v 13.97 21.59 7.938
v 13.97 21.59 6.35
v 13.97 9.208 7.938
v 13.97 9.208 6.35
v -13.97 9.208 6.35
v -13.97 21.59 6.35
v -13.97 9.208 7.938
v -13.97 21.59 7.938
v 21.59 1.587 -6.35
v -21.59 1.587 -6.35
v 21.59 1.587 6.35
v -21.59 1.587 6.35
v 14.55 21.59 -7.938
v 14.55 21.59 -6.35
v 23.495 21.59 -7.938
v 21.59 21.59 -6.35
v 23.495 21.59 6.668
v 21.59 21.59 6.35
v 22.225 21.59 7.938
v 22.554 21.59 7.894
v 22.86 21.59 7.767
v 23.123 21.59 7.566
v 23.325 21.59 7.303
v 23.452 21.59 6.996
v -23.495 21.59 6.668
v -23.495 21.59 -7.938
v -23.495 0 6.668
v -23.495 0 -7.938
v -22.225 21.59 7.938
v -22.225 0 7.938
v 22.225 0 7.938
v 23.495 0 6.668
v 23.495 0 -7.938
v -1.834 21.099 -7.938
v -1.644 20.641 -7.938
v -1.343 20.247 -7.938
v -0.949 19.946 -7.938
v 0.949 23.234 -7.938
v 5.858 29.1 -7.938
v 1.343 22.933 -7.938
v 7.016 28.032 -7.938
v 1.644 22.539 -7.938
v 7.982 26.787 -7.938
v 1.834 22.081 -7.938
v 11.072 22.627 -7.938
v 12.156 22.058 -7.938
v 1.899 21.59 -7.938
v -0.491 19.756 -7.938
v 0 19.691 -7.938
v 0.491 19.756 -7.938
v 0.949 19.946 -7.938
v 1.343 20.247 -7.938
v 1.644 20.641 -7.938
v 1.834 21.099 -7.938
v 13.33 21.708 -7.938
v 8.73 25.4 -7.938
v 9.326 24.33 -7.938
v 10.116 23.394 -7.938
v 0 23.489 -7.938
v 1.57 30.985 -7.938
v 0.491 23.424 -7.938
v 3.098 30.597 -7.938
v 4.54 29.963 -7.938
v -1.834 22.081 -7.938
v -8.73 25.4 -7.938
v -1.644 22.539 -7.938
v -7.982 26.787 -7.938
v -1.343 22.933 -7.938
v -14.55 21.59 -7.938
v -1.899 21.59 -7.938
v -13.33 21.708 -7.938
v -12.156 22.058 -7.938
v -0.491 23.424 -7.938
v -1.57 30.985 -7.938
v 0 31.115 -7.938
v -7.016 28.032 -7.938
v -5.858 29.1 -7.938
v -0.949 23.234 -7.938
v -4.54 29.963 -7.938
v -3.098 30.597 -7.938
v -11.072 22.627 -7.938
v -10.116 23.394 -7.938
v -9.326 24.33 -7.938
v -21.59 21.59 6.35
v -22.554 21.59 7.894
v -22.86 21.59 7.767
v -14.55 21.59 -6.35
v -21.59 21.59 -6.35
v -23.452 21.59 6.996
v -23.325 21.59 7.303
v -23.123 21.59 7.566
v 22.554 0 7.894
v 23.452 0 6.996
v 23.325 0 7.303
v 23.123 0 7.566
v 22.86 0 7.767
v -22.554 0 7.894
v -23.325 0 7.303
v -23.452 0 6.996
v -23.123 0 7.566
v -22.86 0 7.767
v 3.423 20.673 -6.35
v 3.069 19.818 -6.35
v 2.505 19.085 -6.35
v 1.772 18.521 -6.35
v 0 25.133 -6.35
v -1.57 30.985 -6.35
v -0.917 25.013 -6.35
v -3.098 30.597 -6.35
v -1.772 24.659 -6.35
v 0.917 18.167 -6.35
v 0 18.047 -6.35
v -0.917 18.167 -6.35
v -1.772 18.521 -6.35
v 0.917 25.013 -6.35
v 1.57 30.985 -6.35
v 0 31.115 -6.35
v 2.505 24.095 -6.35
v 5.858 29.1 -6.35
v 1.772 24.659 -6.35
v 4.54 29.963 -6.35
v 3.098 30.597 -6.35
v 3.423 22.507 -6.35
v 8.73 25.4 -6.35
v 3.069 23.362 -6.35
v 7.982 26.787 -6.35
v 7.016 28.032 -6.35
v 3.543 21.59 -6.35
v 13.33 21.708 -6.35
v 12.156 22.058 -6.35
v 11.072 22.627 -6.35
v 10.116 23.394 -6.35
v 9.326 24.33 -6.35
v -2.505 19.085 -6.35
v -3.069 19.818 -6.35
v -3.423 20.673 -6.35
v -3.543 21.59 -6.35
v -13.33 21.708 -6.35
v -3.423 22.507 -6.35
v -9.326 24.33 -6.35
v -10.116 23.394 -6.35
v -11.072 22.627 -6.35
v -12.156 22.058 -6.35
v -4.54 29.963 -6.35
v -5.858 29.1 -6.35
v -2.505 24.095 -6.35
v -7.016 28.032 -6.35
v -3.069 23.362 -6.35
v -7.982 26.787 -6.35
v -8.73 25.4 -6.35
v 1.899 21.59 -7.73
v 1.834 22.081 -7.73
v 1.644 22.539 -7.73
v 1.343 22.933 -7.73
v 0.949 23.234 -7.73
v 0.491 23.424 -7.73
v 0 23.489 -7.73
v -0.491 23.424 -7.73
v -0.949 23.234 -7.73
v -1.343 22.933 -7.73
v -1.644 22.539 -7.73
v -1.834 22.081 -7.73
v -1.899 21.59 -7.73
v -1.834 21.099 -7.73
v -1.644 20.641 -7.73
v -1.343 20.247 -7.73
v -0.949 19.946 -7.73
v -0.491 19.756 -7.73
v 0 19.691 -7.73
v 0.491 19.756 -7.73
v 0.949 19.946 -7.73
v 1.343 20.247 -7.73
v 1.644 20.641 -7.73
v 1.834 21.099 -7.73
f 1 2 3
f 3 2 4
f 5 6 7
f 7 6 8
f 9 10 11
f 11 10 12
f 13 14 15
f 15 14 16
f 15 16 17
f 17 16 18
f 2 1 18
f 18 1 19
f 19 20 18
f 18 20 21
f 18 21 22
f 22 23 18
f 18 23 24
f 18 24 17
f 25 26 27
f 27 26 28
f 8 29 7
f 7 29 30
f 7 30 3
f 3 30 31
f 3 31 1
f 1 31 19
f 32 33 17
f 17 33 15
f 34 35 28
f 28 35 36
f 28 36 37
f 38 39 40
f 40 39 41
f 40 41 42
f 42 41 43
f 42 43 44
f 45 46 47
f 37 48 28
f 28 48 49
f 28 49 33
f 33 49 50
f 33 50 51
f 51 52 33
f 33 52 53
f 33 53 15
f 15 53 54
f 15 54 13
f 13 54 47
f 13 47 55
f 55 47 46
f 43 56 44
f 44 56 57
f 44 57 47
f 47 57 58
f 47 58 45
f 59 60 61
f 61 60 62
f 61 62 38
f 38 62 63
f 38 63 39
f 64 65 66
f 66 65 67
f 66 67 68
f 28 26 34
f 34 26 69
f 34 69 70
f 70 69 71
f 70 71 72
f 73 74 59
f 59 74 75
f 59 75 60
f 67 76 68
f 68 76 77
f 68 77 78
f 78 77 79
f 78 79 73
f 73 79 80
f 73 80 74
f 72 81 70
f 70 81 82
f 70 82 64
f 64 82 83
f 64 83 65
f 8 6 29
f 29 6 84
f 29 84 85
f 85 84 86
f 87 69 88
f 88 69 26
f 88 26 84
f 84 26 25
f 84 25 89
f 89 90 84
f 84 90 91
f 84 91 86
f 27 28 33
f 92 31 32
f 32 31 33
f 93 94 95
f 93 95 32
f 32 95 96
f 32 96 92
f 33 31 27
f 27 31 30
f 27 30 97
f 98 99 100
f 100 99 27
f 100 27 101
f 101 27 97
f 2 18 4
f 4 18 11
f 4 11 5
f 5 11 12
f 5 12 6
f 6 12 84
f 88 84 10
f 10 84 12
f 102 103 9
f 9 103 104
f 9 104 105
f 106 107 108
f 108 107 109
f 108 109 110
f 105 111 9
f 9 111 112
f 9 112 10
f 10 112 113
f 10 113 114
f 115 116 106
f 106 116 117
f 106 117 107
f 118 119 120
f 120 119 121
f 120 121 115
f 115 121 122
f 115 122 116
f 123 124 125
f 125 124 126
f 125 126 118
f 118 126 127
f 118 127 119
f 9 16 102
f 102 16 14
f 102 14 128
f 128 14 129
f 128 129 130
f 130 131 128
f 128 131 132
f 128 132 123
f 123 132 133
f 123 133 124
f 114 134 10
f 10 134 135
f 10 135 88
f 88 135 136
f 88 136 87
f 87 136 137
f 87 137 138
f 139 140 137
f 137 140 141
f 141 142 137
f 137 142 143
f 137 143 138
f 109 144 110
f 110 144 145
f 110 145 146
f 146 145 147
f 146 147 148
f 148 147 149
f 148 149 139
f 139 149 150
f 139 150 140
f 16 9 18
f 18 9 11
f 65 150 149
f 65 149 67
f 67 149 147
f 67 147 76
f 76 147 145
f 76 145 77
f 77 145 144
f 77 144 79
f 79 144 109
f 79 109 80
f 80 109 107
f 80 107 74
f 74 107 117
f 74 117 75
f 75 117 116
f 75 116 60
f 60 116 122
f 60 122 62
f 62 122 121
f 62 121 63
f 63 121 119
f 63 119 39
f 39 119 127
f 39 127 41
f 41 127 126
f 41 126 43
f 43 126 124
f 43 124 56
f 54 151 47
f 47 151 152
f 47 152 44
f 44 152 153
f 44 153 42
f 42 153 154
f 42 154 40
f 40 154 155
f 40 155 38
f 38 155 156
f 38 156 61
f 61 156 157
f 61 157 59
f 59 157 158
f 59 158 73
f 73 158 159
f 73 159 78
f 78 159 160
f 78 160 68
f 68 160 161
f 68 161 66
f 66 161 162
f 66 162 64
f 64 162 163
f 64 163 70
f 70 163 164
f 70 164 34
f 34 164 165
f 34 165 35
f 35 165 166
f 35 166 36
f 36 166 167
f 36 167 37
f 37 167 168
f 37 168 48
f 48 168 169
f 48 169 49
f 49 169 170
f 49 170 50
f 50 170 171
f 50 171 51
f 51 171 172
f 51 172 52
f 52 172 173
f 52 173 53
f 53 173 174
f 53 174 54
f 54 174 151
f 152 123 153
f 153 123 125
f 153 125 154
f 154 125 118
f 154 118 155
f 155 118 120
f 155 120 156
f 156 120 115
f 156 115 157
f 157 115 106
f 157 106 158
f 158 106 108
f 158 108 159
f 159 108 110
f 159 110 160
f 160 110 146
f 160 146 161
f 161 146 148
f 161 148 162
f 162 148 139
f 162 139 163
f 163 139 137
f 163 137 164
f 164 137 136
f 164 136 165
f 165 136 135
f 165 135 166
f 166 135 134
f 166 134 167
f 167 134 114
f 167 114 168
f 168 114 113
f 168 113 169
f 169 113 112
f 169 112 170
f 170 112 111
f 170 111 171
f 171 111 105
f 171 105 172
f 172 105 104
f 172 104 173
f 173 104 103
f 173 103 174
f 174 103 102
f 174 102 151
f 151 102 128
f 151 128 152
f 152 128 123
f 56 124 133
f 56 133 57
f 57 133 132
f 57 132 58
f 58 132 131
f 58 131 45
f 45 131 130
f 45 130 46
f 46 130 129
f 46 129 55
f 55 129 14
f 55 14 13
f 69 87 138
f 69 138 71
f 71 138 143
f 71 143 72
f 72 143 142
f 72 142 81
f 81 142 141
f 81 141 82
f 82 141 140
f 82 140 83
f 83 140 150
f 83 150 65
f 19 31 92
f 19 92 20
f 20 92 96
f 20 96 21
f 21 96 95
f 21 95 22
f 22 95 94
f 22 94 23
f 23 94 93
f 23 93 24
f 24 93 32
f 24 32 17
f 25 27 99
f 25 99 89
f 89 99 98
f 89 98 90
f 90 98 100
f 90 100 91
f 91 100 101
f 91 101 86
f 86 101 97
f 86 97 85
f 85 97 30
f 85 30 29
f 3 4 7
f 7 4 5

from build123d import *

# Parameters (mm, degrees)
SKETCH1_W           = 46.99
SKETCH1_H           = 15.875
BOSS_EXTRUDE1_DEPTH = 21.59
SKETCH2_W           = 43.18
SKETCH2_H           = 12.7
SKETCH2_W_2         = 27.94
SKETCH2_H_2         = 1.5875
CUT_EXTRUDE1_DEPTH  = 20.0025
SKETCH3_R           = 9.525
BOSS_EXTRUDE2_DEPTH = 1.5875
FILLET1_R           = 6.35
FILLET2_R           = 1.27
SKETCH9_W           = 27.94
SKETCH9_H           = 1.5875
BOSS_EXTRUDE3_DEPTH = 7.62


with BuildPart() as part:
    # Sketch1 → Boss-Extrude1 (new body)
    with BuildSketch(Plane(origin=(0, 0, 0), x_dir=(1, 0, 0), z_dir=(0, 1, 0))):
        Rectangle(SKETCH1_W, SKETCH1_H)
    extrude(amount=BOSS_EXTRUDE1_DEPTH)

    # Sketch2 → Cut-Extrude1 (cut)
    with BuildSketch(Plane(origin=(0, 21.59, 0), x_dir=(1, 0, 0), z_dir=(0, 1, 0))):
        Rectangle(SKETCH2_W, SKETCH2_H)
        with Locations((0, -7.14375)):
            Rectangle(SKETCH2_W_2, SKETCH2_H_2)
    extrude(amount=-CUT_EXTRUDE1_DEPTH, mode=Mode.SUBTRACT)

    # Sketch3 → Boss-Extrude2 (add)
    with BuildSketch(Plane.XY.offset(-6.35)):
        with Locations((0, 21.59)):
            Circle(SKETCH3_R)
    extrude(amount=-BOSS_EXTRUDE2_DEPTH)

    # Sketch7 → CSK for #6 Flat Head Machine Screw (100)1 (revolve, cut)
    with BuildSketch(Plane(origin=(0, 21.59, -6.35), x_dir=(0, -1, 0), z_dir=(1, 0, 0))):
        Polygon((0, 0), (0, 1.5875), (1.89865, 1.5875), (1.89865, 1.380025208), (3.5433, 0), align=None)
    revolve(axis=Axis((0, 21.59, 0), (0, 0, -1)), mode=Mode.SUBTRACT)

    # Fillet1
    fillet1_edges = [part.edges().sort_by_distance(p)[0] for p in [
        (9.525, 21.59, -7.14375),
        (-9.525, 21.59, -7.14375),
    ]]
    fillet(fillet1_edges, radius=FILLET1_R)

    # Fillet2
    fillet2_edges = [part.edges().sort_by_distance(p)[0] for p in [
        (23.495, 10.795, 7.9375),
        (-23.495, 10.795, 7.9375),
    ]]
    fillet(fillet2_edges, radius=FILLET2_R)

    # Sketch9 → Boss-Extrude3 (add)
    with BuildSketch(Plane(origin=(0, 1.5875, 0), x_dir=(1, 0, 0), z_dir=(0, 1, 0))):
        with Locations((0, -7.14375)):
            Rectangle(SKETCH9_W, SKETCH9_H)
    extrude(amount=BOSS_EXTRUDE3_DEPTH)


solid = part.part
